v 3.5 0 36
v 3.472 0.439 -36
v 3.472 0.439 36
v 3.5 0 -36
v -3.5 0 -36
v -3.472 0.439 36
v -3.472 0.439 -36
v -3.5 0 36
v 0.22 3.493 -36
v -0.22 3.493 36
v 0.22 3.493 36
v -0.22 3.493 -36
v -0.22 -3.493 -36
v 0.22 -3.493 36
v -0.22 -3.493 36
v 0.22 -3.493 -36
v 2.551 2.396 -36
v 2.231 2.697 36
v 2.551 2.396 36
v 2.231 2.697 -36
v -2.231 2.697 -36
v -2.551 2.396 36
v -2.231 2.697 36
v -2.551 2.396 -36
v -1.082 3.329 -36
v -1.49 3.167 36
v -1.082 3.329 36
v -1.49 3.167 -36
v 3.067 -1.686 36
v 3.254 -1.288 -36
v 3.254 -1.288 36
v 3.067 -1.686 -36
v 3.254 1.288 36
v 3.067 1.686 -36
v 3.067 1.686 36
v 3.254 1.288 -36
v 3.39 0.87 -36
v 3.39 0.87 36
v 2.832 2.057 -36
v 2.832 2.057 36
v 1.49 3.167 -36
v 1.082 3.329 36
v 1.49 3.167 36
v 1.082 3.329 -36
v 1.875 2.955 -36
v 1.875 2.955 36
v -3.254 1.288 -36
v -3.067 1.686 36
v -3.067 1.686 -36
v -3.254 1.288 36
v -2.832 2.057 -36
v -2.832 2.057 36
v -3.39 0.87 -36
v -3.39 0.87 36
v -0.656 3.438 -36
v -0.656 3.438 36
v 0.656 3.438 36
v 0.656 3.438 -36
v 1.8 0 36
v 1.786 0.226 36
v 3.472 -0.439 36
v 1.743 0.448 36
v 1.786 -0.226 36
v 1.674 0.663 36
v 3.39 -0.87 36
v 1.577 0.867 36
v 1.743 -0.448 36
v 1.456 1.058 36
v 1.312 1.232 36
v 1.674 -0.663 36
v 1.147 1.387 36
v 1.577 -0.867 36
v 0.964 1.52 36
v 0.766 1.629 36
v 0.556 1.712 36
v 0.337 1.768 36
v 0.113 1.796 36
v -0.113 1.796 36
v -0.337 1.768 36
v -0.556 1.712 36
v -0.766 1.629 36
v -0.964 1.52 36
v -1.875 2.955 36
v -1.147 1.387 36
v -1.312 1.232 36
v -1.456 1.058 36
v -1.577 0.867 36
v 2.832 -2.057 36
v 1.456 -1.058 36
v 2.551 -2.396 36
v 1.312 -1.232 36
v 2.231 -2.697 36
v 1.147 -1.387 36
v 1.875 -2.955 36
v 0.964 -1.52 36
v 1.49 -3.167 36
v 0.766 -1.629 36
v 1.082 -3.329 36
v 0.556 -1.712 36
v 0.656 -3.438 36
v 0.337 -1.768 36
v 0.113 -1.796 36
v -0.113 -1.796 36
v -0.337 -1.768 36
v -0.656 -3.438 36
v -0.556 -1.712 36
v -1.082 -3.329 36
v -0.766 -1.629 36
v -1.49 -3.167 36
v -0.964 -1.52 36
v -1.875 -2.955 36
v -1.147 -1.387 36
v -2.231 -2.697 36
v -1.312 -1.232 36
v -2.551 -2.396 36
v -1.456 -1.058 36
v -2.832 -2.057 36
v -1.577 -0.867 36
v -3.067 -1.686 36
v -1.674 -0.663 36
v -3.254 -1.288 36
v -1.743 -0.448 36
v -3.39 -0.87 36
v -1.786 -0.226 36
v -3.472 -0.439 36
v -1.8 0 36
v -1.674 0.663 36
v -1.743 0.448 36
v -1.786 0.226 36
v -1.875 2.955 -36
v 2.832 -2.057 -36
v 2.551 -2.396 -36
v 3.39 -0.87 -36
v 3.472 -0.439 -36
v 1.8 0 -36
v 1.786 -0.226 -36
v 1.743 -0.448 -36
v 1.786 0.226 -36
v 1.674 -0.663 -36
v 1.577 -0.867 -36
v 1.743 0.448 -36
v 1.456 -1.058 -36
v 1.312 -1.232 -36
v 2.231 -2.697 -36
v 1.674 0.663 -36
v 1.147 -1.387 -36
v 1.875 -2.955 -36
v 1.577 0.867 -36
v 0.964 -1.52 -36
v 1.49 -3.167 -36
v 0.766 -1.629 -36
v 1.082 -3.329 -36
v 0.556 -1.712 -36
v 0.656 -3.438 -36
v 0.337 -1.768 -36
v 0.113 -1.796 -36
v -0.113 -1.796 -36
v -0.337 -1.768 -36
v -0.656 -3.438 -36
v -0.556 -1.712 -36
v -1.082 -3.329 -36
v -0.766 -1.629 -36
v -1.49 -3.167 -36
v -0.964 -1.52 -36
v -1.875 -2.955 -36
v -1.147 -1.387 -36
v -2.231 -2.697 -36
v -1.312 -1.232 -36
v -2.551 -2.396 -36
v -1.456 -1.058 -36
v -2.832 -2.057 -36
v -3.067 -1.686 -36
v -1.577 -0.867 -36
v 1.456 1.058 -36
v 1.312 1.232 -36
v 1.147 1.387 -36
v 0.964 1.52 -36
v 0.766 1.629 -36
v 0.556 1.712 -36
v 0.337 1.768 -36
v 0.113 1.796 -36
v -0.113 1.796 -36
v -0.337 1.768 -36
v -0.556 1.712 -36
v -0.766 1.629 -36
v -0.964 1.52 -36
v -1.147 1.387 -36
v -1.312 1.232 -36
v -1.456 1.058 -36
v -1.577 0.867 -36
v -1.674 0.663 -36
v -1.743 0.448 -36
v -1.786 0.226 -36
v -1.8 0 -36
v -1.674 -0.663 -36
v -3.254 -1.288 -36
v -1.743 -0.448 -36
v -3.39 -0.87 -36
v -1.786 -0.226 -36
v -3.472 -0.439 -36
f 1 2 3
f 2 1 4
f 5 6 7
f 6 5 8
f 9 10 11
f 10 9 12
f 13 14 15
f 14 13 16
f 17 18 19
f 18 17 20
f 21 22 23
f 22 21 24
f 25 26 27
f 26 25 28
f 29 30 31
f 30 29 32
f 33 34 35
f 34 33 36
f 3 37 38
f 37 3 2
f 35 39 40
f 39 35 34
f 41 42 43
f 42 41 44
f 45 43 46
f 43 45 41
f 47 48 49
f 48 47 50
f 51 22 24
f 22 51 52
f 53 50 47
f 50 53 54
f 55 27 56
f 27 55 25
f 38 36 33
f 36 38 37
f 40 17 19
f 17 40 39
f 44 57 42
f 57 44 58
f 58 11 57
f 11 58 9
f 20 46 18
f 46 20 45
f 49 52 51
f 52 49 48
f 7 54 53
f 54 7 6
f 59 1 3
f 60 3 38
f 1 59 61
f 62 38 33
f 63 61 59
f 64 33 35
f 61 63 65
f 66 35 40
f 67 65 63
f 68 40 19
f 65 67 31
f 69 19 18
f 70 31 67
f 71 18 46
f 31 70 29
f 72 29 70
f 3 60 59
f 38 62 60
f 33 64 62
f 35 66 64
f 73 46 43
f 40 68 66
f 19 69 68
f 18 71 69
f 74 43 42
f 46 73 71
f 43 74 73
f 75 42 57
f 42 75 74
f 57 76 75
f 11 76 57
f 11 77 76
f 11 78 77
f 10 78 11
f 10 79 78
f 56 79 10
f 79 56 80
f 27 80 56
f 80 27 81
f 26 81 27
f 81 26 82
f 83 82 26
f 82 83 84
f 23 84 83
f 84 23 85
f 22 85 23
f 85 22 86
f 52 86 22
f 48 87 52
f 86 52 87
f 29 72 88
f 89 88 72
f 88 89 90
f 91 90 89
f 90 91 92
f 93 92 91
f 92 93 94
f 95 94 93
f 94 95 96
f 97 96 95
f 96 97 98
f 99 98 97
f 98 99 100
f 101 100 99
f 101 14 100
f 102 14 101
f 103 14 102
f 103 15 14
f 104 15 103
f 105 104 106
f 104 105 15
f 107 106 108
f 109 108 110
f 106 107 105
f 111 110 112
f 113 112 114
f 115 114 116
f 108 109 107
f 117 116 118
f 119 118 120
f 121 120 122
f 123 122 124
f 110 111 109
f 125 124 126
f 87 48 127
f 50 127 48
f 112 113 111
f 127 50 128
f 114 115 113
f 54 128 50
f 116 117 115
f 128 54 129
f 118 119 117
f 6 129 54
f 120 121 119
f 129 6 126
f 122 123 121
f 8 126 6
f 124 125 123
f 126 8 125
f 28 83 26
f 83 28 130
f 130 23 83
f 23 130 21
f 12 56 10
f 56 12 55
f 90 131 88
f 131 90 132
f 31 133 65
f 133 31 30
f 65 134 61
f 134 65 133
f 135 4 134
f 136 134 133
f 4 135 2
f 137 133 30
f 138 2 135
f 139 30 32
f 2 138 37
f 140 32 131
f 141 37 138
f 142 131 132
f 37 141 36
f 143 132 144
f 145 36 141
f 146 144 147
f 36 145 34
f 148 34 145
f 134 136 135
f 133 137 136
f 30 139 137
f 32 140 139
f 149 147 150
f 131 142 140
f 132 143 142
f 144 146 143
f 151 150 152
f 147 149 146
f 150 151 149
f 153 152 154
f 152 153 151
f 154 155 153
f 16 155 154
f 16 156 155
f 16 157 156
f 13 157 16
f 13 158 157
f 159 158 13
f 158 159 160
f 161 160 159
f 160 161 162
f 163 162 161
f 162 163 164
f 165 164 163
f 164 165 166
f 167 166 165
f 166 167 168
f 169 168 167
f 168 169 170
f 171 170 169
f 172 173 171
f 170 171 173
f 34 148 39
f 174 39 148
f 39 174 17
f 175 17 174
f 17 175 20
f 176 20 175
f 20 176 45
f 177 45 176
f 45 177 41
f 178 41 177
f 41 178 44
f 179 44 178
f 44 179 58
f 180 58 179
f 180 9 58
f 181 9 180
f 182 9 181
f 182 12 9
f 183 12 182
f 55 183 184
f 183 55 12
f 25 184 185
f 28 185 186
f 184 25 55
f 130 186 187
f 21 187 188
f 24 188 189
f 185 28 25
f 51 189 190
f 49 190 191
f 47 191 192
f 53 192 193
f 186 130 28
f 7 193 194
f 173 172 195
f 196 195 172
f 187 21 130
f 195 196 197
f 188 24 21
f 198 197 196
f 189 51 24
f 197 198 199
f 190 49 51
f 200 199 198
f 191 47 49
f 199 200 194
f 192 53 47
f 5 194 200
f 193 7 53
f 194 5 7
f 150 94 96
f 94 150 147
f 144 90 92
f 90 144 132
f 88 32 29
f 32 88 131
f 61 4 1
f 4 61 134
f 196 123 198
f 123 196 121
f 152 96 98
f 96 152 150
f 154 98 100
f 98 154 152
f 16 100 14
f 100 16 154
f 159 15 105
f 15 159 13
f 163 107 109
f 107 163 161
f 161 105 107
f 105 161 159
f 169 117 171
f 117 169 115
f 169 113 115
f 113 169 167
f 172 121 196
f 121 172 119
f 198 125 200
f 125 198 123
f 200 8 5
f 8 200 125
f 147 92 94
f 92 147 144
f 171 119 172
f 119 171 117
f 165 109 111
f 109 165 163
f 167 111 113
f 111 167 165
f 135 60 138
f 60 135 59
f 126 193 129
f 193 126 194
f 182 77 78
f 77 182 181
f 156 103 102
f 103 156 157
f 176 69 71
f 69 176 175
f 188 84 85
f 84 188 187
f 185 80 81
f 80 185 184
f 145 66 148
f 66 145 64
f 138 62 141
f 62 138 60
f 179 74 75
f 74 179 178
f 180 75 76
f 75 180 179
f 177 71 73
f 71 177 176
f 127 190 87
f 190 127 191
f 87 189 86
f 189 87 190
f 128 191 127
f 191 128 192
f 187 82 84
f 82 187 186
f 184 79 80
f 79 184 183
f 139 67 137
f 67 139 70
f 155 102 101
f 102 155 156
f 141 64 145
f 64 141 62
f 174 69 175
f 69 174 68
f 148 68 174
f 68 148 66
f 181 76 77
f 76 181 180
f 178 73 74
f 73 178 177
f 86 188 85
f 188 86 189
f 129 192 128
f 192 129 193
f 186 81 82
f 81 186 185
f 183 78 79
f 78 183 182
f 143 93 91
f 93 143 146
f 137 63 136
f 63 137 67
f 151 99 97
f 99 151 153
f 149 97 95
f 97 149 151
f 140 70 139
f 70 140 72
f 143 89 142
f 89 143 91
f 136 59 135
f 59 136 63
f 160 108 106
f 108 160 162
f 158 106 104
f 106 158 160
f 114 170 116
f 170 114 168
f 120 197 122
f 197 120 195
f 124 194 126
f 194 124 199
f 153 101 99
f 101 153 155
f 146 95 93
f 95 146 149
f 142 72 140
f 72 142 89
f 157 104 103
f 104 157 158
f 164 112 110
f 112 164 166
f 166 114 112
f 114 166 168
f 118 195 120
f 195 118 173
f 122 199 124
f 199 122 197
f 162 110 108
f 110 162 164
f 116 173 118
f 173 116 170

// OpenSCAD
$fn = 50;


difference() {
	union() {
		translate(v = [0, 0, -36.0000000000]) {
			cylinder(h = 72, r = 3.5000000000);
		}
	}
	union() {
		translate(v = [0, 0, -100.0000000000]) {
			cylinder(h = 200, r = 1.8000000000);
		}
	}
}
